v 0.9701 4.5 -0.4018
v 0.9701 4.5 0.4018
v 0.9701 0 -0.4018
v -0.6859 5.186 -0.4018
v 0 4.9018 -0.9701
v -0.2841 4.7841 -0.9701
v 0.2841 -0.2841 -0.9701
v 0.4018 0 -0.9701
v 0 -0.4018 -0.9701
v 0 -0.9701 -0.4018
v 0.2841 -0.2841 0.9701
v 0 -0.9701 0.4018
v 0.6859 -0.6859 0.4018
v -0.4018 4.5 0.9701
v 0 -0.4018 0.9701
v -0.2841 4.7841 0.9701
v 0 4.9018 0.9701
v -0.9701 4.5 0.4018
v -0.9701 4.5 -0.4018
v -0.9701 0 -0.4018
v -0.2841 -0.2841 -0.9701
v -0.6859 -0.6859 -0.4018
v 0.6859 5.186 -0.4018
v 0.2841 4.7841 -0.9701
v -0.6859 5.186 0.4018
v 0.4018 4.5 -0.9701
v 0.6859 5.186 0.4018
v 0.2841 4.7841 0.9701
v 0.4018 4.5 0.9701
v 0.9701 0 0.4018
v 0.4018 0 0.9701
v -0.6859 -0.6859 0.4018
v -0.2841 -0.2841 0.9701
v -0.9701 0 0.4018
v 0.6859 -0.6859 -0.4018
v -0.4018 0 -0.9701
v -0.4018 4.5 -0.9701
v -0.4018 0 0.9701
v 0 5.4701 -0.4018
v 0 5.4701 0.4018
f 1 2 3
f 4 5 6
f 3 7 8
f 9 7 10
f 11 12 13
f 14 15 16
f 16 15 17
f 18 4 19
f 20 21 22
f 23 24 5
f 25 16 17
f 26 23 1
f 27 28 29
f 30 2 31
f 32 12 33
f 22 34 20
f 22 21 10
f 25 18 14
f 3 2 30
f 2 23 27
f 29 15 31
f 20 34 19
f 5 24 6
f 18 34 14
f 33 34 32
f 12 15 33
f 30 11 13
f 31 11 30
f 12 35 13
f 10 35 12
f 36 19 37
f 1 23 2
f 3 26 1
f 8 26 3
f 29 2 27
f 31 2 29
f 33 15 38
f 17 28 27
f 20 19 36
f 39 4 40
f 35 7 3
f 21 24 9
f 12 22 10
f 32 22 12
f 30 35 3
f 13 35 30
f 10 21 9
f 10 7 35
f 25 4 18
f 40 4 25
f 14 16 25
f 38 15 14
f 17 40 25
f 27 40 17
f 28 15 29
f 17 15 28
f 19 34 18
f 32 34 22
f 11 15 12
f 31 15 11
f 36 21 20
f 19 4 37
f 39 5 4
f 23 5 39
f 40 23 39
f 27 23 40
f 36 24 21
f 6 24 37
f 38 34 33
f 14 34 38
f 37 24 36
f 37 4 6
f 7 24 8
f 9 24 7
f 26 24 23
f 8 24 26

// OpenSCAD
module rod(a, b, r) {
        hull() {
            translate(a) sphere(r,$fn=8);
            translate(b) sphere(r,$fn=8);
        }
    }

rod([0,0,0],[0,4.5,0],1.05);
